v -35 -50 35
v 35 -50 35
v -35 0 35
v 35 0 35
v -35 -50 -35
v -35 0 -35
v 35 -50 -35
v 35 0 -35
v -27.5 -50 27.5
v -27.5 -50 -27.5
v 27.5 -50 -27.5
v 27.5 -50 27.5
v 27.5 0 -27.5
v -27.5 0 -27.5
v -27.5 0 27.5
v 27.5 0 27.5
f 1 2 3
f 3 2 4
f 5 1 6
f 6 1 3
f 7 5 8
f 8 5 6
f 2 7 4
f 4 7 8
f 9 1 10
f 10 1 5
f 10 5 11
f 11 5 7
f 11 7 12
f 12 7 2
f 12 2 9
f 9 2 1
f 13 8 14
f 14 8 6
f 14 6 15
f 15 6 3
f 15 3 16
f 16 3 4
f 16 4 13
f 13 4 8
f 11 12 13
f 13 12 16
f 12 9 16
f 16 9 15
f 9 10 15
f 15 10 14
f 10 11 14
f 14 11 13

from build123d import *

# Parameters (mm, degrees)
SKETCH_1_W          = 70
SKETCH_1_H          = 70
EXTRUDE_1_DEPTH     = 50
SKETCH_2_W          = 55
SKETCH_2_H          = 55
CUT_EXTRUDE_1_DEPTH = 50


with BuildPart() as part:
    # 草图1 → 凸台-拉伸1 (new body)
    with BuildSketch(Plane(origin=(0, 0, 0), x_dir=(1, 0, 0), z_dir=(0, 1, 0))):
        Rectangle(SKETCH_1_W, SKETCH_1_H)
    extrude(amount=-EXTRUDE_1_DEPTH)

    # 草图2 → 切除-拉伸1 (cut)
    with BuildSketch(Plane(origin=(0, 0, 0), x_dir=(1, 0, 0), z_dir=(0, 1, 0))):
        Rectangle(SKETCH_2_W, SKETCH_2_H)
    extrude(amount=-CUT_EXTRUDE_1_DEPTH, mode=Mode.SUBTRACT)


solid = part.part
